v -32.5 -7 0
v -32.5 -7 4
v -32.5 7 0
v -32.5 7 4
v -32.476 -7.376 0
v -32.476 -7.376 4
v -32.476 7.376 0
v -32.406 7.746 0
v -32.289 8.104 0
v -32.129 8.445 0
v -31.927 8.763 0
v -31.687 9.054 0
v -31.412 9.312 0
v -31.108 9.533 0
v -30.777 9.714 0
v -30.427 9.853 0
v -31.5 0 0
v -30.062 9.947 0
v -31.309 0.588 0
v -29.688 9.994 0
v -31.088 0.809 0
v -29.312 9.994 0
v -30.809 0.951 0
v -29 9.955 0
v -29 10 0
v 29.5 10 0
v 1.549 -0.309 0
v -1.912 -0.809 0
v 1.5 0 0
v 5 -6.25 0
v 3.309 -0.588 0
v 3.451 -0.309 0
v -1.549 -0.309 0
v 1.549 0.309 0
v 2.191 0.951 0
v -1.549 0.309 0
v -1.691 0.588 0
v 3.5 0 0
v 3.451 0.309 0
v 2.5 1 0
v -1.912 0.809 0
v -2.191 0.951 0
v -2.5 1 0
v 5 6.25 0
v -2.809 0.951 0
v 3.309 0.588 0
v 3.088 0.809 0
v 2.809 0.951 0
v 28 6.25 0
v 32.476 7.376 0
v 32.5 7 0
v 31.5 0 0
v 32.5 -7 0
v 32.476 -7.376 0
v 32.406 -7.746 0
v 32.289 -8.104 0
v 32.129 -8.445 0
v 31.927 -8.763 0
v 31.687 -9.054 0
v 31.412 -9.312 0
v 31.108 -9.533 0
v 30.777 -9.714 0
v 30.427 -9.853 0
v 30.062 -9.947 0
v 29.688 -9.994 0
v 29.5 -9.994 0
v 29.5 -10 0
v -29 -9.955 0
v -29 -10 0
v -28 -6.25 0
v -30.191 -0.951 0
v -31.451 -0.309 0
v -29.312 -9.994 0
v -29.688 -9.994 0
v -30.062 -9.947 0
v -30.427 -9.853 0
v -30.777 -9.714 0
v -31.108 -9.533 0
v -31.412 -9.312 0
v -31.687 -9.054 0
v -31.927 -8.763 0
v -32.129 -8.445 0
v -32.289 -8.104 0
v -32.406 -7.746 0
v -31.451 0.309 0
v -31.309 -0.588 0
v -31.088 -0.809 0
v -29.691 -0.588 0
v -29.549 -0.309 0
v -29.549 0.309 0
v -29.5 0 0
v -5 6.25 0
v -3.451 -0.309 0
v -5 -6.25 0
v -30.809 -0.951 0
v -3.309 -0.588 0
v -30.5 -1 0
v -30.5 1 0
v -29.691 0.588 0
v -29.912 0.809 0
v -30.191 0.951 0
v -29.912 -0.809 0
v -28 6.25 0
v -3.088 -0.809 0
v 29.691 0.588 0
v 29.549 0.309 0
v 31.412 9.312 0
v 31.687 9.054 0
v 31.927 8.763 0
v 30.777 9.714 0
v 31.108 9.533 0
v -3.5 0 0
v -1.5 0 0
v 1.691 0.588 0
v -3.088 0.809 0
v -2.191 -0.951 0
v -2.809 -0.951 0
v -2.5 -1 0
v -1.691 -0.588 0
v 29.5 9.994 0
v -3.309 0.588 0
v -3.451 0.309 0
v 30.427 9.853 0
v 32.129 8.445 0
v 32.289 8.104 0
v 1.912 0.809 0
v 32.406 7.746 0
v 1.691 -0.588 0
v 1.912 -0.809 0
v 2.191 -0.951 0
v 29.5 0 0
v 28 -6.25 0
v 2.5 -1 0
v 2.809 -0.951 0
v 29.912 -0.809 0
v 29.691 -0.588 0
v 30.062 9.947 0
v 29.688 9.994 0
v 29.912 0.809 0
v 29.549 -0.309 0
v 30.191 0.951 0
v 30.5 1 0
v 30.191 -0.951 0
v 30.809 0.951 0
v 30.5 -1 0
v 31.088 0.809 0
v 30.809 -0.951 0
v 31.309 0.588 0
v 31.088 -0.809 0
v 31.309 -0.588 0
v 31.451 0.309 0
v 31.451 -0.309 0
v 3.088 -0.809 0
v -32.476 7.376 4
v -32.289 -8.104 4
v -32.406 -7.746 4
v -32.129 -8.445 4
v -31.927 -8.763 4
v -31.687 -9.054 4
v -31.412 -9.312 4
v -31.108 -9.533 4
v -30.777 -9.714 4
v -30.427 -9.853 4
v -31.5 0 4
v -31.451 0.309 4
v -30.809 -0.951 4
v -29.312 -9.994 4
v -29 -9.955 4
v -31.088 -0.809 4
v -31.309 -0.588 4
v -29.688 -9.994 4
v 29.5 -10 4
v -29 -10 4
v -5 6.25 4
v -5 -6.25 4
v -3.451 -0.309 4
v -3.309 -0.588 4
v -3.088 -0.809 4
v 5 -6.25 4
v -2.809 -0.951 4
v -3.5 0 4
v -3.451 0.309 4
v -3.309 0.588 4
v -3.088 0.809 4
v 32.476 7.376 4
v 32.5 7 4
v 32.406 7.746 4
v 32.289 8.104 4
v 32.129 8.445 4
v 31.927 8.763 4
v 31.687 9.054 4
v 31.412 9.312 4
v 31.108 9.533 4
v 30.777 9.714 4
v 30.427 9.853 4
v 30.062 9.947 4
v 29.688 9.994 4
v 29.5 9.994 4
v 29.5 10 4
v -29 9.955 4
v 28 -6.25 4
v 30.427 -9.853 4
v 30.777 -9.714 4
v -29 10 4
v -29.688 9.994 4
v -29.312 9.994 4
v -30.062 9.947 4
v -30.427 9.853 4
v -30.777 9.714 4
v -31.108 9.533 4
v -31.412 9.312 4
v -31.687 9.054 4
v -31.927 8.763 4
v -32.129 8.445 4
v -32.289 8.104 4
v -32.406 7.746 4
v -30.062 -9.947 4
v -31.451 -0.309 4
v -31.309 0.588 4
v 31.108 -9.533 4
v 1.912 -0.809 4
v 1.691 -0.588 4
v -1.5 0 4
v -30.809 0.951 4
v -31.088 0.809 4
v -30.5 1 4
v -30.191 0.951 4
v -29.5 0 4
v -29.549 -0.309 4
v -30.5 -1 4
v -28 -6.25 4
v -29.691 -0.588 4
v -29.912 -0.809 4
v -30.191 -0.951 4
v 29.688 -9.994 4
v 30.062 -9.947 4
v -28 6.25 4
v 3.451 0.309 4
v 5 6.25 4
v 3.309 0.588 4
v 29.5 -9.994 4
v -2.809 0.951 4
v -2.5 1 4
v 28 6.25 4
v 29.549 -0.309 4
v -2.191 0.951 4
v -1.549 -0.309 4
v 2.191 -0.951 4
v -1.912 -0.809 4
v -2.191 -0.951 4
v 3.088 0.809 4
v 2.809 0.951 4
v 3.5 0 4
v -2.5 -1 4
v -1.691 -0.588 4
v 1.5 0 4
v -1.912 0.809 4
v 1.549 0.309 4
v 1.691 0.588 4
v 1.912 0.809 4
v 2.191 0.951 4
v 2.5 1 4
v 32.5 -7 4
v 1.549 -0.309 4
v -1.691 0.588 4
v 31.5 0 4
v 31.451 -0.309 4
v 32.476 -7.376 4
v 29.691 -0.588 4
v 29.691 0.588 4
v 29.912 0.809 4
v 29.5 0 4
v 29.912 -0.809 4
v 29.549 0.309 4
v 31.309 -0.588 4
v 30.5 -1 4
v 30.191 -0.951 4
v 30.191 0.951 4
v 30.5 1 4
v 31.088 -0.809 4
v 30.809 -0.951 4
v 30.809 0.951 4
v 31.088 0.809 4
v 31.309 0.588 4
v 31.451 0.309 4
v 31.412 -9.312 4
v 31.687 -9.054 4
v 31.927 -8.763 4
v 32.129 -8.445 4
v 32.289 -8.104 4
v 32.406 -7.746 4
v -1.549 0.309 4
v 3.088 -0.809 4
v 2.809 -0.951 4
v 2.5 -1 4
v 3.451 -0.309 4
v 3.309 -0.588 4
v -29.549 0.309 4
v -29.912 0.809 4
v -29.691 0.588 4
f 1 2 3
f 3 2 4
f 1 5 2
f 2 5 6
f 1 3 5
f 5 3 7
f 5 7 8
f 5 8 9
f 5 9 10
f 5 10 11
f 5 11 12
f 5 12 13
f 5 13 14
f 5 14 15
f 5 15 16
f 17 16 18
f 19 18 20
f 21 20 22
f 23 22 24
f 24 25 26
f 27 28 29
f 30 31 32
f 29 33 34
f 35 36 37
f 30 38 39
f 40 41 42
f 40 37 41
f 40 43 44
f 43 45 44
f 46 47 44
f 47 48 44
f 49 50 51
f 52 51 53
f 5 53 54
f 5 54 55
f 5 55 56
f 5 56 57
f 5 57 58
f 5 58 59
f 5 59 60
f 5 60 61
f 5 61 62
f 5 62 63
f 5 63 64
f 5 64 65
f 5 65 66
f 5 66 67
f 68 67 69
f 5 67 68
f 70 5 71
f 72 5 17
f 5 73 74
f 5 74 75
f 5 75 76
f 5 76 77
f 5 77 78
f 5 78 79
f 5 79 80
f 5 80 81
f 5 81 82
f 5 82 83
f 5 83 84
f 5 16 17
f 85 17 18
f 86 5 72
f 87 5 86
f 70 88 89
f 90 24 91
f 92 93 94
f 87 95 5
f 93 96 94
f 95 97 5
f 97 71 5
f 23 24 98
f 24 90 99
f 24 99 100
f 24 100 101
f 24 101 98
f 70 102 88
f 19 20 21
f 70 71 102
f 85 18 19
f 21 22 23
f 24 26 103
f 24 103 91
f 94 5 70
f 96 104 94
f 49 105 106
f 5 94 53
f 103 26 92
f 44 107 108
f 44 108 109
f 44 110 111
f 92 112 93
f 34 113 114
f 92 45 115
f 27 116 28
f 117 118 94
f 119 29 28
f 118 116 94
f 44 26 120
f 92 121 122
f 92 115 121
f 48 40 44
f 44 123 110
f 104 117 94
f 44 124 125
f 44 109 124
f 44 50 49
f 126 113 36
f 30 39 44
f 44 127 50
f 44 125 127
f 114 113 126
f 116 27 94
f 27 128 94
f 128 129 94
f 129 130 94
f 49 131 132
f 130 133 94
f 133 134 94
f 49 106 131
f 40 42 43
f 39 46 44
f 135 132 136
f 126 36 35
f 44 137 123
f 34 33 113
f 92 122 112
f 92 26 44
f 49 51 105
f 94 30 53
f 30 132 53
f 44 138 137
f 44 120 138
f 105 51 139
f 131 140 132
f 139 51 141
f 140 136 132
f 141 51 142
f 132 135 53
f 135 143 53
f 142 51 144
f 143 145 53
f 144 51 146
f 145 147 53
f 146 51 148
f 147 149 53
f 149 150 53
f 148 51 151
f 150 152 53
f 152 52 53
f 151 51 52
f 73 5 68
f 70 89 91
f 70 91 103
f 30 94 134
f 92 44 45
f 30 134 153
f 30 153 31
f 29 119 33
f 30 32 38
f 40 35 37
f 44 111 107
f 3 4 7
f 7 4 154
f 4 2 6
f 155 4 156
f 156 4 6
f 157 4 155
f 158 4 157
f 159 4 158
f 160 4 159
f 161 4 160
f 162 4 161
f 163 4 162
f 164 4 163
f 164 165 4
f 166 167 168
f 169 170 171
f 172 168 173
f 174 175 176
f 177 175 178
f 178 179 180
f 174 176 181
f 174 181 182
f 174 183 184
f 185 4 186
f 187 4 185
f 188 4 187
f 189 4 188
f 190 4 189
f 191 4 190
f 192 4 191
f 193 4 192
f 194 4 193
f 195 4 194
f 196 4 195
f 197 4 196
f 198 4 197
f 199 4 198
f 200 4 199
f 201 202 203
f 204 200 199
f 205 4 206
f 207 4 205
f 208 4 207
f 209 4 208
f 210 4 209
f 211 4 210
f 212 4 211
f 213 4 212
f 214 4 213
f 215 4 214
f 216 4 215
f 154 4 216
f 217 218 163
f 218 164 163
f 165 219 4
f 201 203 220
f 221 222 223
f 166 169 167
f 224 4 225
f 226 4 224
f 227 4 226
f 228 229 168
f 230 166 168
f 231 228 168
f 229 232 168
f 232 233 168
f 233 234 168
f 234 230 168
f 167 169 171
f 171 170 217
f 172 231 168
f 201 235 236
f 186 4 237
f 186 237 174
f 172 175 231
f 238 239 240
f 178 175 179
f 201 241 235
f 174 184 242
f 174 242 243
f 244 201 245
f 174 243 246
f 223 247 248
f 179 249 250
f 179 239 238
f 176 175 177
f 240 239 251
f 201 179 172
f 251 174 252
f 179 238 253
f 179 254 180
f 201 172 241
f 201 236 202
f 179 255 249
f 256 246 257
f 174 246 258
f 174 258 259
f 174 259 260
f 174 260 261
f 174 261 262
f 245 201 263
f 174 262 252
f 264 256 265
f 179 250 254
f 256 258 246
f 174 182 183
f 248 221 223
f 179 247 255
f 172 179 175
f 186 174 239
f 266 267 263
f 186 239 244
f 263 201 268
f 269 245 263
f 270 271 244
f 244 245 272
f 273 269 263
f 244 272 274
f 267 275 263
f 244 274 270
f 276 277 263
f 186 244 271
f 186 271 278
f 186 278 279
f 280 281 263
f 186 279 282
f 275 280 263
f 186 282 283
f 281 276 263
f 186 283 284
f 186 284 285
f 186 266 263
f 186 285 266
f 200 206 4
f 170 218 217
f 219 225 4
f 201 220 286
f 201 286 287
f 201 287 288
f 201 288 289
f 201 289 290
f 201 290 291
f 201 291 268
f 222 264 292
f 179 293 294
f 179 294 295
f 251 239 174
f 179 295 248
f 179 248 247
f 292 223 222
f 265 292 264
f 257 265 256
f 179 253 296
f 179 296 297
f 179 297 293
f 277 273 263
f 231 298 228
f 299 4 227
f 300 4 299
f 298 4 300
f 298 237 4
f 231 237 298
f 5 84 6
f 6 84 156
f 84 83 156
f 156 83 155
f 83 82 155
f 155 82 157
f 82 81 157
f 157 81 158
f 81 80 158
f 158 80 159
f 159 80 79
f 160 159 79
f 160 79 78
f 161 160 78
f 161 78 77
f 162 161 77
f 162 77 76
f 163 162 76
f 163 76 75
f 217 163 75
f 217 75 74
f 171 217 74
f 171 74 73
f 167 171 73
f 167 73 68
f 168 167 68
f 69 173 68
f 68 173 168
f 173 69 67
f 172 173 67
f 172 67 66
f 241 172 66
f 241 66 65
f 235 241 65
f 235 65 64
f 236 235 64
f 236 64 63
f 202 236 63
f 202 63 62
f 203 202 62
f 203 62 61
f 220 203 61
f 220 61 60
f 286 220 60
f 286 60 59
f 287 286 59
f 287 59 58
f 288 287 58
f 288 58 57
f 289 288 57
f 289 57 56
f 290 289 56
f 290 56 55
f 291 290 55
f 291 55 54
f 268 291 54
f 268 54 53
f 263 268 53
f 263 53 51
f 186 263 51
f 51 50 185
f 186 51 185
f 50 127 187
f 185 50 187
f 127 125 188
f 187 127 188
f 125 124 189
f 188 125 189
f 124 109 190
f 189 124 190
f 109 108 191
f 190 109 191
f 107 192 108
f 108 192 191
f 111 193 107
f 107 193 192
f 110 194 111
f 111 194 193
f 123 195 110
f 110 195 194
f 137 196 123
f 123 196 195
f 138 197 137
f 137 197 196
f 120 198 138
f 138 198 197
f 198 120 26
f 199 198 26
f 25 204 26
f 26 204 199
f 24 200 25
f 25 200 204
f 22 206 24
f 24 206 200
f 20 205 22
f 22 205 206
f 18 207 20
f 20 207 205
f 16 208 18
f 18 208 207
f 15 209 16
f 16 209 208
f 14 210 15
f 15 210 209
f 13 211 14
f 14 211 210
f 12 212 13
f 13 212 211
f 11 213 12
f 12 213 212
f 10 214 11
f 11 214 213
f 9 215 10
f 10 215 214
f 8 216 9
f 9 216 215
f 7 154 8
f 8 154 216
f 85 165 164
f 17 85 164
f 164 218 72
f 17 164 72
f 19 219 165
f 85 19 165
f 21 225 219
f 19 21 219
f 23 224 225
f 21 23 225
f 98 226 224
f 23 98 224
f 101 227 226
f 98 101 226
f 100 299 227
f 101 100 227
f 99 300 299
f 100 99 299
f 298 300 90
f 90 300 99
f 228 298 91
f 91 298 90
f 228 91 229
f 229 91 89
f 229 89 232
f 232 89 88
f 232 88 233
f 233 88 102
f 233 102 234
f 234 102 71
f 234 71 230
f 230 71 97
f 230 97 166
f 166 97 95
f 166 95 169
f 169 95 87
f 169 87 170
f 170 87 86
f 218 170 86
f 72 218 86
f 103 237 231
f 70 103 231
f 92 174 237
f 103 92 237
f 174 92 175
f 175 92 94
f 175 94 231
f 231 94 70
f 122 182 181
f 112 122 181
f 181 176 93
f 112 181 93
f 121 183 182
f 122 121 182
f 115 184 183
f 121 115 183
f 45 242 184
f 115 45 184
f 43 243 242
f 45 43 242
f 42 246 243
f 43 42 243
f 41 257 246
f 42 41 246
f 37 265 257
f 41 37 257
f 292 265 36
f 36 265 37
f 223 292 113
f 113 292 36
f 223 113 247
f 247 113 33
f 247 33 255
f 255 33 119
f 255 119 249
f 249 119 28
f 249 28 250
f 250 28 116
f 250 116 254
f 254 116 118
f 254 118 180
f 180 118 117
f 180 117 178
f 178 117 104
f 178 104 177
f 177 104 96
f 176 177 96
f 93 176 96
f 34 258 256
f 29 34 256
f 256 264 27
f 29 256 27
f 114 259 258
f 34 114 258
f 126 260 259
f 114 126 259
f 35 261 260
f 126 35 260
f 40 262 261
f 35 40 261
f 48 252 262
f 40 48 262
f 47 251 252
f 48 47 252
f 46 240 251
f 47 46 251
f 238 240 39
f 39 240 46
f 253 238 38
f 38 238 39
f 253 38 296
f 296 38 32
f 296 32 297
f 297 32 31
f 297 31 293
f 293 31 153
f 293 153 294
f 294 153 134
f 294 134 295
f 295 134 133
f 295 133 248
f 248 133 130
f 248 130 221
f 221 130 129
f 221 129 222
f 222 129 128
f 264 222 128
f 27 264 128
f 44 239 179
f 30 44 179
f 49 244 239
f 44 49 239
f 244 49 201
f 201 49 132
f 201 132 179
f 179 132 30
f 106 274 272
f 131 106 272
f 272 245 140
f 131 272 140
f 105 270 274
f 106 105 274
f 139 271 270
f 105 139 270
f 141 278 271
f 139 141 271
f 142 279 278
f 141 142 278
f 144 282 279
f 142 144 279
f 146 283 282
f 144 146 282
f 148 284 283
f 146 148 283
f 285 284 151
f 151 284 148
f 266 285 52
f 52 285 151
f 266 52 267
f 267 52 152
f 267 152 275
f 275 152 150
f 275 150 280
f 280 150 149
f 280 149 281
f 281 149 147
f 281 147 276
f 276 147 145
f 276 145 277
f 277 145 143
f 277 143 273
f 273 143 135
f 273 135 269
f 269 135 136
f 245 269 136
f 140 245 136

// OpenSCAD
hip(23,12.5);

module hip(l,w){
   difference(){
            union(){
         //main
         translate([-29,-10,0]) cube([58.5,20,4]);

         //outside edges
         for (i = [[-32.5,-7,0],[26.5,-7,0]] ){
         	   translate(i) cube([6,14,4]);
         }

         //rounded corners
         for (i = [[-29.5,7,0],[-29.5,-7,0],[29.5,7,0],[29.5,-7,0]] ){
            translate(i) cylinder(r=3,h=4,$fn=50);
         }
      }
      
      //servo mount holes
      for (i = [[-2.5,0,-2],[-30.5,0,-2],[2.5,0,-2],[30.5,0,-2]] ){
         translate(i) cylinder(r=1,h=20,$fn=20);
      }
      
      //servo body cutouts
      for (i = [[-16.5,0,2],[16.5,0,2]] ){
         translate(i)  cube([l,w,22], center=true);
      }

   }
}
